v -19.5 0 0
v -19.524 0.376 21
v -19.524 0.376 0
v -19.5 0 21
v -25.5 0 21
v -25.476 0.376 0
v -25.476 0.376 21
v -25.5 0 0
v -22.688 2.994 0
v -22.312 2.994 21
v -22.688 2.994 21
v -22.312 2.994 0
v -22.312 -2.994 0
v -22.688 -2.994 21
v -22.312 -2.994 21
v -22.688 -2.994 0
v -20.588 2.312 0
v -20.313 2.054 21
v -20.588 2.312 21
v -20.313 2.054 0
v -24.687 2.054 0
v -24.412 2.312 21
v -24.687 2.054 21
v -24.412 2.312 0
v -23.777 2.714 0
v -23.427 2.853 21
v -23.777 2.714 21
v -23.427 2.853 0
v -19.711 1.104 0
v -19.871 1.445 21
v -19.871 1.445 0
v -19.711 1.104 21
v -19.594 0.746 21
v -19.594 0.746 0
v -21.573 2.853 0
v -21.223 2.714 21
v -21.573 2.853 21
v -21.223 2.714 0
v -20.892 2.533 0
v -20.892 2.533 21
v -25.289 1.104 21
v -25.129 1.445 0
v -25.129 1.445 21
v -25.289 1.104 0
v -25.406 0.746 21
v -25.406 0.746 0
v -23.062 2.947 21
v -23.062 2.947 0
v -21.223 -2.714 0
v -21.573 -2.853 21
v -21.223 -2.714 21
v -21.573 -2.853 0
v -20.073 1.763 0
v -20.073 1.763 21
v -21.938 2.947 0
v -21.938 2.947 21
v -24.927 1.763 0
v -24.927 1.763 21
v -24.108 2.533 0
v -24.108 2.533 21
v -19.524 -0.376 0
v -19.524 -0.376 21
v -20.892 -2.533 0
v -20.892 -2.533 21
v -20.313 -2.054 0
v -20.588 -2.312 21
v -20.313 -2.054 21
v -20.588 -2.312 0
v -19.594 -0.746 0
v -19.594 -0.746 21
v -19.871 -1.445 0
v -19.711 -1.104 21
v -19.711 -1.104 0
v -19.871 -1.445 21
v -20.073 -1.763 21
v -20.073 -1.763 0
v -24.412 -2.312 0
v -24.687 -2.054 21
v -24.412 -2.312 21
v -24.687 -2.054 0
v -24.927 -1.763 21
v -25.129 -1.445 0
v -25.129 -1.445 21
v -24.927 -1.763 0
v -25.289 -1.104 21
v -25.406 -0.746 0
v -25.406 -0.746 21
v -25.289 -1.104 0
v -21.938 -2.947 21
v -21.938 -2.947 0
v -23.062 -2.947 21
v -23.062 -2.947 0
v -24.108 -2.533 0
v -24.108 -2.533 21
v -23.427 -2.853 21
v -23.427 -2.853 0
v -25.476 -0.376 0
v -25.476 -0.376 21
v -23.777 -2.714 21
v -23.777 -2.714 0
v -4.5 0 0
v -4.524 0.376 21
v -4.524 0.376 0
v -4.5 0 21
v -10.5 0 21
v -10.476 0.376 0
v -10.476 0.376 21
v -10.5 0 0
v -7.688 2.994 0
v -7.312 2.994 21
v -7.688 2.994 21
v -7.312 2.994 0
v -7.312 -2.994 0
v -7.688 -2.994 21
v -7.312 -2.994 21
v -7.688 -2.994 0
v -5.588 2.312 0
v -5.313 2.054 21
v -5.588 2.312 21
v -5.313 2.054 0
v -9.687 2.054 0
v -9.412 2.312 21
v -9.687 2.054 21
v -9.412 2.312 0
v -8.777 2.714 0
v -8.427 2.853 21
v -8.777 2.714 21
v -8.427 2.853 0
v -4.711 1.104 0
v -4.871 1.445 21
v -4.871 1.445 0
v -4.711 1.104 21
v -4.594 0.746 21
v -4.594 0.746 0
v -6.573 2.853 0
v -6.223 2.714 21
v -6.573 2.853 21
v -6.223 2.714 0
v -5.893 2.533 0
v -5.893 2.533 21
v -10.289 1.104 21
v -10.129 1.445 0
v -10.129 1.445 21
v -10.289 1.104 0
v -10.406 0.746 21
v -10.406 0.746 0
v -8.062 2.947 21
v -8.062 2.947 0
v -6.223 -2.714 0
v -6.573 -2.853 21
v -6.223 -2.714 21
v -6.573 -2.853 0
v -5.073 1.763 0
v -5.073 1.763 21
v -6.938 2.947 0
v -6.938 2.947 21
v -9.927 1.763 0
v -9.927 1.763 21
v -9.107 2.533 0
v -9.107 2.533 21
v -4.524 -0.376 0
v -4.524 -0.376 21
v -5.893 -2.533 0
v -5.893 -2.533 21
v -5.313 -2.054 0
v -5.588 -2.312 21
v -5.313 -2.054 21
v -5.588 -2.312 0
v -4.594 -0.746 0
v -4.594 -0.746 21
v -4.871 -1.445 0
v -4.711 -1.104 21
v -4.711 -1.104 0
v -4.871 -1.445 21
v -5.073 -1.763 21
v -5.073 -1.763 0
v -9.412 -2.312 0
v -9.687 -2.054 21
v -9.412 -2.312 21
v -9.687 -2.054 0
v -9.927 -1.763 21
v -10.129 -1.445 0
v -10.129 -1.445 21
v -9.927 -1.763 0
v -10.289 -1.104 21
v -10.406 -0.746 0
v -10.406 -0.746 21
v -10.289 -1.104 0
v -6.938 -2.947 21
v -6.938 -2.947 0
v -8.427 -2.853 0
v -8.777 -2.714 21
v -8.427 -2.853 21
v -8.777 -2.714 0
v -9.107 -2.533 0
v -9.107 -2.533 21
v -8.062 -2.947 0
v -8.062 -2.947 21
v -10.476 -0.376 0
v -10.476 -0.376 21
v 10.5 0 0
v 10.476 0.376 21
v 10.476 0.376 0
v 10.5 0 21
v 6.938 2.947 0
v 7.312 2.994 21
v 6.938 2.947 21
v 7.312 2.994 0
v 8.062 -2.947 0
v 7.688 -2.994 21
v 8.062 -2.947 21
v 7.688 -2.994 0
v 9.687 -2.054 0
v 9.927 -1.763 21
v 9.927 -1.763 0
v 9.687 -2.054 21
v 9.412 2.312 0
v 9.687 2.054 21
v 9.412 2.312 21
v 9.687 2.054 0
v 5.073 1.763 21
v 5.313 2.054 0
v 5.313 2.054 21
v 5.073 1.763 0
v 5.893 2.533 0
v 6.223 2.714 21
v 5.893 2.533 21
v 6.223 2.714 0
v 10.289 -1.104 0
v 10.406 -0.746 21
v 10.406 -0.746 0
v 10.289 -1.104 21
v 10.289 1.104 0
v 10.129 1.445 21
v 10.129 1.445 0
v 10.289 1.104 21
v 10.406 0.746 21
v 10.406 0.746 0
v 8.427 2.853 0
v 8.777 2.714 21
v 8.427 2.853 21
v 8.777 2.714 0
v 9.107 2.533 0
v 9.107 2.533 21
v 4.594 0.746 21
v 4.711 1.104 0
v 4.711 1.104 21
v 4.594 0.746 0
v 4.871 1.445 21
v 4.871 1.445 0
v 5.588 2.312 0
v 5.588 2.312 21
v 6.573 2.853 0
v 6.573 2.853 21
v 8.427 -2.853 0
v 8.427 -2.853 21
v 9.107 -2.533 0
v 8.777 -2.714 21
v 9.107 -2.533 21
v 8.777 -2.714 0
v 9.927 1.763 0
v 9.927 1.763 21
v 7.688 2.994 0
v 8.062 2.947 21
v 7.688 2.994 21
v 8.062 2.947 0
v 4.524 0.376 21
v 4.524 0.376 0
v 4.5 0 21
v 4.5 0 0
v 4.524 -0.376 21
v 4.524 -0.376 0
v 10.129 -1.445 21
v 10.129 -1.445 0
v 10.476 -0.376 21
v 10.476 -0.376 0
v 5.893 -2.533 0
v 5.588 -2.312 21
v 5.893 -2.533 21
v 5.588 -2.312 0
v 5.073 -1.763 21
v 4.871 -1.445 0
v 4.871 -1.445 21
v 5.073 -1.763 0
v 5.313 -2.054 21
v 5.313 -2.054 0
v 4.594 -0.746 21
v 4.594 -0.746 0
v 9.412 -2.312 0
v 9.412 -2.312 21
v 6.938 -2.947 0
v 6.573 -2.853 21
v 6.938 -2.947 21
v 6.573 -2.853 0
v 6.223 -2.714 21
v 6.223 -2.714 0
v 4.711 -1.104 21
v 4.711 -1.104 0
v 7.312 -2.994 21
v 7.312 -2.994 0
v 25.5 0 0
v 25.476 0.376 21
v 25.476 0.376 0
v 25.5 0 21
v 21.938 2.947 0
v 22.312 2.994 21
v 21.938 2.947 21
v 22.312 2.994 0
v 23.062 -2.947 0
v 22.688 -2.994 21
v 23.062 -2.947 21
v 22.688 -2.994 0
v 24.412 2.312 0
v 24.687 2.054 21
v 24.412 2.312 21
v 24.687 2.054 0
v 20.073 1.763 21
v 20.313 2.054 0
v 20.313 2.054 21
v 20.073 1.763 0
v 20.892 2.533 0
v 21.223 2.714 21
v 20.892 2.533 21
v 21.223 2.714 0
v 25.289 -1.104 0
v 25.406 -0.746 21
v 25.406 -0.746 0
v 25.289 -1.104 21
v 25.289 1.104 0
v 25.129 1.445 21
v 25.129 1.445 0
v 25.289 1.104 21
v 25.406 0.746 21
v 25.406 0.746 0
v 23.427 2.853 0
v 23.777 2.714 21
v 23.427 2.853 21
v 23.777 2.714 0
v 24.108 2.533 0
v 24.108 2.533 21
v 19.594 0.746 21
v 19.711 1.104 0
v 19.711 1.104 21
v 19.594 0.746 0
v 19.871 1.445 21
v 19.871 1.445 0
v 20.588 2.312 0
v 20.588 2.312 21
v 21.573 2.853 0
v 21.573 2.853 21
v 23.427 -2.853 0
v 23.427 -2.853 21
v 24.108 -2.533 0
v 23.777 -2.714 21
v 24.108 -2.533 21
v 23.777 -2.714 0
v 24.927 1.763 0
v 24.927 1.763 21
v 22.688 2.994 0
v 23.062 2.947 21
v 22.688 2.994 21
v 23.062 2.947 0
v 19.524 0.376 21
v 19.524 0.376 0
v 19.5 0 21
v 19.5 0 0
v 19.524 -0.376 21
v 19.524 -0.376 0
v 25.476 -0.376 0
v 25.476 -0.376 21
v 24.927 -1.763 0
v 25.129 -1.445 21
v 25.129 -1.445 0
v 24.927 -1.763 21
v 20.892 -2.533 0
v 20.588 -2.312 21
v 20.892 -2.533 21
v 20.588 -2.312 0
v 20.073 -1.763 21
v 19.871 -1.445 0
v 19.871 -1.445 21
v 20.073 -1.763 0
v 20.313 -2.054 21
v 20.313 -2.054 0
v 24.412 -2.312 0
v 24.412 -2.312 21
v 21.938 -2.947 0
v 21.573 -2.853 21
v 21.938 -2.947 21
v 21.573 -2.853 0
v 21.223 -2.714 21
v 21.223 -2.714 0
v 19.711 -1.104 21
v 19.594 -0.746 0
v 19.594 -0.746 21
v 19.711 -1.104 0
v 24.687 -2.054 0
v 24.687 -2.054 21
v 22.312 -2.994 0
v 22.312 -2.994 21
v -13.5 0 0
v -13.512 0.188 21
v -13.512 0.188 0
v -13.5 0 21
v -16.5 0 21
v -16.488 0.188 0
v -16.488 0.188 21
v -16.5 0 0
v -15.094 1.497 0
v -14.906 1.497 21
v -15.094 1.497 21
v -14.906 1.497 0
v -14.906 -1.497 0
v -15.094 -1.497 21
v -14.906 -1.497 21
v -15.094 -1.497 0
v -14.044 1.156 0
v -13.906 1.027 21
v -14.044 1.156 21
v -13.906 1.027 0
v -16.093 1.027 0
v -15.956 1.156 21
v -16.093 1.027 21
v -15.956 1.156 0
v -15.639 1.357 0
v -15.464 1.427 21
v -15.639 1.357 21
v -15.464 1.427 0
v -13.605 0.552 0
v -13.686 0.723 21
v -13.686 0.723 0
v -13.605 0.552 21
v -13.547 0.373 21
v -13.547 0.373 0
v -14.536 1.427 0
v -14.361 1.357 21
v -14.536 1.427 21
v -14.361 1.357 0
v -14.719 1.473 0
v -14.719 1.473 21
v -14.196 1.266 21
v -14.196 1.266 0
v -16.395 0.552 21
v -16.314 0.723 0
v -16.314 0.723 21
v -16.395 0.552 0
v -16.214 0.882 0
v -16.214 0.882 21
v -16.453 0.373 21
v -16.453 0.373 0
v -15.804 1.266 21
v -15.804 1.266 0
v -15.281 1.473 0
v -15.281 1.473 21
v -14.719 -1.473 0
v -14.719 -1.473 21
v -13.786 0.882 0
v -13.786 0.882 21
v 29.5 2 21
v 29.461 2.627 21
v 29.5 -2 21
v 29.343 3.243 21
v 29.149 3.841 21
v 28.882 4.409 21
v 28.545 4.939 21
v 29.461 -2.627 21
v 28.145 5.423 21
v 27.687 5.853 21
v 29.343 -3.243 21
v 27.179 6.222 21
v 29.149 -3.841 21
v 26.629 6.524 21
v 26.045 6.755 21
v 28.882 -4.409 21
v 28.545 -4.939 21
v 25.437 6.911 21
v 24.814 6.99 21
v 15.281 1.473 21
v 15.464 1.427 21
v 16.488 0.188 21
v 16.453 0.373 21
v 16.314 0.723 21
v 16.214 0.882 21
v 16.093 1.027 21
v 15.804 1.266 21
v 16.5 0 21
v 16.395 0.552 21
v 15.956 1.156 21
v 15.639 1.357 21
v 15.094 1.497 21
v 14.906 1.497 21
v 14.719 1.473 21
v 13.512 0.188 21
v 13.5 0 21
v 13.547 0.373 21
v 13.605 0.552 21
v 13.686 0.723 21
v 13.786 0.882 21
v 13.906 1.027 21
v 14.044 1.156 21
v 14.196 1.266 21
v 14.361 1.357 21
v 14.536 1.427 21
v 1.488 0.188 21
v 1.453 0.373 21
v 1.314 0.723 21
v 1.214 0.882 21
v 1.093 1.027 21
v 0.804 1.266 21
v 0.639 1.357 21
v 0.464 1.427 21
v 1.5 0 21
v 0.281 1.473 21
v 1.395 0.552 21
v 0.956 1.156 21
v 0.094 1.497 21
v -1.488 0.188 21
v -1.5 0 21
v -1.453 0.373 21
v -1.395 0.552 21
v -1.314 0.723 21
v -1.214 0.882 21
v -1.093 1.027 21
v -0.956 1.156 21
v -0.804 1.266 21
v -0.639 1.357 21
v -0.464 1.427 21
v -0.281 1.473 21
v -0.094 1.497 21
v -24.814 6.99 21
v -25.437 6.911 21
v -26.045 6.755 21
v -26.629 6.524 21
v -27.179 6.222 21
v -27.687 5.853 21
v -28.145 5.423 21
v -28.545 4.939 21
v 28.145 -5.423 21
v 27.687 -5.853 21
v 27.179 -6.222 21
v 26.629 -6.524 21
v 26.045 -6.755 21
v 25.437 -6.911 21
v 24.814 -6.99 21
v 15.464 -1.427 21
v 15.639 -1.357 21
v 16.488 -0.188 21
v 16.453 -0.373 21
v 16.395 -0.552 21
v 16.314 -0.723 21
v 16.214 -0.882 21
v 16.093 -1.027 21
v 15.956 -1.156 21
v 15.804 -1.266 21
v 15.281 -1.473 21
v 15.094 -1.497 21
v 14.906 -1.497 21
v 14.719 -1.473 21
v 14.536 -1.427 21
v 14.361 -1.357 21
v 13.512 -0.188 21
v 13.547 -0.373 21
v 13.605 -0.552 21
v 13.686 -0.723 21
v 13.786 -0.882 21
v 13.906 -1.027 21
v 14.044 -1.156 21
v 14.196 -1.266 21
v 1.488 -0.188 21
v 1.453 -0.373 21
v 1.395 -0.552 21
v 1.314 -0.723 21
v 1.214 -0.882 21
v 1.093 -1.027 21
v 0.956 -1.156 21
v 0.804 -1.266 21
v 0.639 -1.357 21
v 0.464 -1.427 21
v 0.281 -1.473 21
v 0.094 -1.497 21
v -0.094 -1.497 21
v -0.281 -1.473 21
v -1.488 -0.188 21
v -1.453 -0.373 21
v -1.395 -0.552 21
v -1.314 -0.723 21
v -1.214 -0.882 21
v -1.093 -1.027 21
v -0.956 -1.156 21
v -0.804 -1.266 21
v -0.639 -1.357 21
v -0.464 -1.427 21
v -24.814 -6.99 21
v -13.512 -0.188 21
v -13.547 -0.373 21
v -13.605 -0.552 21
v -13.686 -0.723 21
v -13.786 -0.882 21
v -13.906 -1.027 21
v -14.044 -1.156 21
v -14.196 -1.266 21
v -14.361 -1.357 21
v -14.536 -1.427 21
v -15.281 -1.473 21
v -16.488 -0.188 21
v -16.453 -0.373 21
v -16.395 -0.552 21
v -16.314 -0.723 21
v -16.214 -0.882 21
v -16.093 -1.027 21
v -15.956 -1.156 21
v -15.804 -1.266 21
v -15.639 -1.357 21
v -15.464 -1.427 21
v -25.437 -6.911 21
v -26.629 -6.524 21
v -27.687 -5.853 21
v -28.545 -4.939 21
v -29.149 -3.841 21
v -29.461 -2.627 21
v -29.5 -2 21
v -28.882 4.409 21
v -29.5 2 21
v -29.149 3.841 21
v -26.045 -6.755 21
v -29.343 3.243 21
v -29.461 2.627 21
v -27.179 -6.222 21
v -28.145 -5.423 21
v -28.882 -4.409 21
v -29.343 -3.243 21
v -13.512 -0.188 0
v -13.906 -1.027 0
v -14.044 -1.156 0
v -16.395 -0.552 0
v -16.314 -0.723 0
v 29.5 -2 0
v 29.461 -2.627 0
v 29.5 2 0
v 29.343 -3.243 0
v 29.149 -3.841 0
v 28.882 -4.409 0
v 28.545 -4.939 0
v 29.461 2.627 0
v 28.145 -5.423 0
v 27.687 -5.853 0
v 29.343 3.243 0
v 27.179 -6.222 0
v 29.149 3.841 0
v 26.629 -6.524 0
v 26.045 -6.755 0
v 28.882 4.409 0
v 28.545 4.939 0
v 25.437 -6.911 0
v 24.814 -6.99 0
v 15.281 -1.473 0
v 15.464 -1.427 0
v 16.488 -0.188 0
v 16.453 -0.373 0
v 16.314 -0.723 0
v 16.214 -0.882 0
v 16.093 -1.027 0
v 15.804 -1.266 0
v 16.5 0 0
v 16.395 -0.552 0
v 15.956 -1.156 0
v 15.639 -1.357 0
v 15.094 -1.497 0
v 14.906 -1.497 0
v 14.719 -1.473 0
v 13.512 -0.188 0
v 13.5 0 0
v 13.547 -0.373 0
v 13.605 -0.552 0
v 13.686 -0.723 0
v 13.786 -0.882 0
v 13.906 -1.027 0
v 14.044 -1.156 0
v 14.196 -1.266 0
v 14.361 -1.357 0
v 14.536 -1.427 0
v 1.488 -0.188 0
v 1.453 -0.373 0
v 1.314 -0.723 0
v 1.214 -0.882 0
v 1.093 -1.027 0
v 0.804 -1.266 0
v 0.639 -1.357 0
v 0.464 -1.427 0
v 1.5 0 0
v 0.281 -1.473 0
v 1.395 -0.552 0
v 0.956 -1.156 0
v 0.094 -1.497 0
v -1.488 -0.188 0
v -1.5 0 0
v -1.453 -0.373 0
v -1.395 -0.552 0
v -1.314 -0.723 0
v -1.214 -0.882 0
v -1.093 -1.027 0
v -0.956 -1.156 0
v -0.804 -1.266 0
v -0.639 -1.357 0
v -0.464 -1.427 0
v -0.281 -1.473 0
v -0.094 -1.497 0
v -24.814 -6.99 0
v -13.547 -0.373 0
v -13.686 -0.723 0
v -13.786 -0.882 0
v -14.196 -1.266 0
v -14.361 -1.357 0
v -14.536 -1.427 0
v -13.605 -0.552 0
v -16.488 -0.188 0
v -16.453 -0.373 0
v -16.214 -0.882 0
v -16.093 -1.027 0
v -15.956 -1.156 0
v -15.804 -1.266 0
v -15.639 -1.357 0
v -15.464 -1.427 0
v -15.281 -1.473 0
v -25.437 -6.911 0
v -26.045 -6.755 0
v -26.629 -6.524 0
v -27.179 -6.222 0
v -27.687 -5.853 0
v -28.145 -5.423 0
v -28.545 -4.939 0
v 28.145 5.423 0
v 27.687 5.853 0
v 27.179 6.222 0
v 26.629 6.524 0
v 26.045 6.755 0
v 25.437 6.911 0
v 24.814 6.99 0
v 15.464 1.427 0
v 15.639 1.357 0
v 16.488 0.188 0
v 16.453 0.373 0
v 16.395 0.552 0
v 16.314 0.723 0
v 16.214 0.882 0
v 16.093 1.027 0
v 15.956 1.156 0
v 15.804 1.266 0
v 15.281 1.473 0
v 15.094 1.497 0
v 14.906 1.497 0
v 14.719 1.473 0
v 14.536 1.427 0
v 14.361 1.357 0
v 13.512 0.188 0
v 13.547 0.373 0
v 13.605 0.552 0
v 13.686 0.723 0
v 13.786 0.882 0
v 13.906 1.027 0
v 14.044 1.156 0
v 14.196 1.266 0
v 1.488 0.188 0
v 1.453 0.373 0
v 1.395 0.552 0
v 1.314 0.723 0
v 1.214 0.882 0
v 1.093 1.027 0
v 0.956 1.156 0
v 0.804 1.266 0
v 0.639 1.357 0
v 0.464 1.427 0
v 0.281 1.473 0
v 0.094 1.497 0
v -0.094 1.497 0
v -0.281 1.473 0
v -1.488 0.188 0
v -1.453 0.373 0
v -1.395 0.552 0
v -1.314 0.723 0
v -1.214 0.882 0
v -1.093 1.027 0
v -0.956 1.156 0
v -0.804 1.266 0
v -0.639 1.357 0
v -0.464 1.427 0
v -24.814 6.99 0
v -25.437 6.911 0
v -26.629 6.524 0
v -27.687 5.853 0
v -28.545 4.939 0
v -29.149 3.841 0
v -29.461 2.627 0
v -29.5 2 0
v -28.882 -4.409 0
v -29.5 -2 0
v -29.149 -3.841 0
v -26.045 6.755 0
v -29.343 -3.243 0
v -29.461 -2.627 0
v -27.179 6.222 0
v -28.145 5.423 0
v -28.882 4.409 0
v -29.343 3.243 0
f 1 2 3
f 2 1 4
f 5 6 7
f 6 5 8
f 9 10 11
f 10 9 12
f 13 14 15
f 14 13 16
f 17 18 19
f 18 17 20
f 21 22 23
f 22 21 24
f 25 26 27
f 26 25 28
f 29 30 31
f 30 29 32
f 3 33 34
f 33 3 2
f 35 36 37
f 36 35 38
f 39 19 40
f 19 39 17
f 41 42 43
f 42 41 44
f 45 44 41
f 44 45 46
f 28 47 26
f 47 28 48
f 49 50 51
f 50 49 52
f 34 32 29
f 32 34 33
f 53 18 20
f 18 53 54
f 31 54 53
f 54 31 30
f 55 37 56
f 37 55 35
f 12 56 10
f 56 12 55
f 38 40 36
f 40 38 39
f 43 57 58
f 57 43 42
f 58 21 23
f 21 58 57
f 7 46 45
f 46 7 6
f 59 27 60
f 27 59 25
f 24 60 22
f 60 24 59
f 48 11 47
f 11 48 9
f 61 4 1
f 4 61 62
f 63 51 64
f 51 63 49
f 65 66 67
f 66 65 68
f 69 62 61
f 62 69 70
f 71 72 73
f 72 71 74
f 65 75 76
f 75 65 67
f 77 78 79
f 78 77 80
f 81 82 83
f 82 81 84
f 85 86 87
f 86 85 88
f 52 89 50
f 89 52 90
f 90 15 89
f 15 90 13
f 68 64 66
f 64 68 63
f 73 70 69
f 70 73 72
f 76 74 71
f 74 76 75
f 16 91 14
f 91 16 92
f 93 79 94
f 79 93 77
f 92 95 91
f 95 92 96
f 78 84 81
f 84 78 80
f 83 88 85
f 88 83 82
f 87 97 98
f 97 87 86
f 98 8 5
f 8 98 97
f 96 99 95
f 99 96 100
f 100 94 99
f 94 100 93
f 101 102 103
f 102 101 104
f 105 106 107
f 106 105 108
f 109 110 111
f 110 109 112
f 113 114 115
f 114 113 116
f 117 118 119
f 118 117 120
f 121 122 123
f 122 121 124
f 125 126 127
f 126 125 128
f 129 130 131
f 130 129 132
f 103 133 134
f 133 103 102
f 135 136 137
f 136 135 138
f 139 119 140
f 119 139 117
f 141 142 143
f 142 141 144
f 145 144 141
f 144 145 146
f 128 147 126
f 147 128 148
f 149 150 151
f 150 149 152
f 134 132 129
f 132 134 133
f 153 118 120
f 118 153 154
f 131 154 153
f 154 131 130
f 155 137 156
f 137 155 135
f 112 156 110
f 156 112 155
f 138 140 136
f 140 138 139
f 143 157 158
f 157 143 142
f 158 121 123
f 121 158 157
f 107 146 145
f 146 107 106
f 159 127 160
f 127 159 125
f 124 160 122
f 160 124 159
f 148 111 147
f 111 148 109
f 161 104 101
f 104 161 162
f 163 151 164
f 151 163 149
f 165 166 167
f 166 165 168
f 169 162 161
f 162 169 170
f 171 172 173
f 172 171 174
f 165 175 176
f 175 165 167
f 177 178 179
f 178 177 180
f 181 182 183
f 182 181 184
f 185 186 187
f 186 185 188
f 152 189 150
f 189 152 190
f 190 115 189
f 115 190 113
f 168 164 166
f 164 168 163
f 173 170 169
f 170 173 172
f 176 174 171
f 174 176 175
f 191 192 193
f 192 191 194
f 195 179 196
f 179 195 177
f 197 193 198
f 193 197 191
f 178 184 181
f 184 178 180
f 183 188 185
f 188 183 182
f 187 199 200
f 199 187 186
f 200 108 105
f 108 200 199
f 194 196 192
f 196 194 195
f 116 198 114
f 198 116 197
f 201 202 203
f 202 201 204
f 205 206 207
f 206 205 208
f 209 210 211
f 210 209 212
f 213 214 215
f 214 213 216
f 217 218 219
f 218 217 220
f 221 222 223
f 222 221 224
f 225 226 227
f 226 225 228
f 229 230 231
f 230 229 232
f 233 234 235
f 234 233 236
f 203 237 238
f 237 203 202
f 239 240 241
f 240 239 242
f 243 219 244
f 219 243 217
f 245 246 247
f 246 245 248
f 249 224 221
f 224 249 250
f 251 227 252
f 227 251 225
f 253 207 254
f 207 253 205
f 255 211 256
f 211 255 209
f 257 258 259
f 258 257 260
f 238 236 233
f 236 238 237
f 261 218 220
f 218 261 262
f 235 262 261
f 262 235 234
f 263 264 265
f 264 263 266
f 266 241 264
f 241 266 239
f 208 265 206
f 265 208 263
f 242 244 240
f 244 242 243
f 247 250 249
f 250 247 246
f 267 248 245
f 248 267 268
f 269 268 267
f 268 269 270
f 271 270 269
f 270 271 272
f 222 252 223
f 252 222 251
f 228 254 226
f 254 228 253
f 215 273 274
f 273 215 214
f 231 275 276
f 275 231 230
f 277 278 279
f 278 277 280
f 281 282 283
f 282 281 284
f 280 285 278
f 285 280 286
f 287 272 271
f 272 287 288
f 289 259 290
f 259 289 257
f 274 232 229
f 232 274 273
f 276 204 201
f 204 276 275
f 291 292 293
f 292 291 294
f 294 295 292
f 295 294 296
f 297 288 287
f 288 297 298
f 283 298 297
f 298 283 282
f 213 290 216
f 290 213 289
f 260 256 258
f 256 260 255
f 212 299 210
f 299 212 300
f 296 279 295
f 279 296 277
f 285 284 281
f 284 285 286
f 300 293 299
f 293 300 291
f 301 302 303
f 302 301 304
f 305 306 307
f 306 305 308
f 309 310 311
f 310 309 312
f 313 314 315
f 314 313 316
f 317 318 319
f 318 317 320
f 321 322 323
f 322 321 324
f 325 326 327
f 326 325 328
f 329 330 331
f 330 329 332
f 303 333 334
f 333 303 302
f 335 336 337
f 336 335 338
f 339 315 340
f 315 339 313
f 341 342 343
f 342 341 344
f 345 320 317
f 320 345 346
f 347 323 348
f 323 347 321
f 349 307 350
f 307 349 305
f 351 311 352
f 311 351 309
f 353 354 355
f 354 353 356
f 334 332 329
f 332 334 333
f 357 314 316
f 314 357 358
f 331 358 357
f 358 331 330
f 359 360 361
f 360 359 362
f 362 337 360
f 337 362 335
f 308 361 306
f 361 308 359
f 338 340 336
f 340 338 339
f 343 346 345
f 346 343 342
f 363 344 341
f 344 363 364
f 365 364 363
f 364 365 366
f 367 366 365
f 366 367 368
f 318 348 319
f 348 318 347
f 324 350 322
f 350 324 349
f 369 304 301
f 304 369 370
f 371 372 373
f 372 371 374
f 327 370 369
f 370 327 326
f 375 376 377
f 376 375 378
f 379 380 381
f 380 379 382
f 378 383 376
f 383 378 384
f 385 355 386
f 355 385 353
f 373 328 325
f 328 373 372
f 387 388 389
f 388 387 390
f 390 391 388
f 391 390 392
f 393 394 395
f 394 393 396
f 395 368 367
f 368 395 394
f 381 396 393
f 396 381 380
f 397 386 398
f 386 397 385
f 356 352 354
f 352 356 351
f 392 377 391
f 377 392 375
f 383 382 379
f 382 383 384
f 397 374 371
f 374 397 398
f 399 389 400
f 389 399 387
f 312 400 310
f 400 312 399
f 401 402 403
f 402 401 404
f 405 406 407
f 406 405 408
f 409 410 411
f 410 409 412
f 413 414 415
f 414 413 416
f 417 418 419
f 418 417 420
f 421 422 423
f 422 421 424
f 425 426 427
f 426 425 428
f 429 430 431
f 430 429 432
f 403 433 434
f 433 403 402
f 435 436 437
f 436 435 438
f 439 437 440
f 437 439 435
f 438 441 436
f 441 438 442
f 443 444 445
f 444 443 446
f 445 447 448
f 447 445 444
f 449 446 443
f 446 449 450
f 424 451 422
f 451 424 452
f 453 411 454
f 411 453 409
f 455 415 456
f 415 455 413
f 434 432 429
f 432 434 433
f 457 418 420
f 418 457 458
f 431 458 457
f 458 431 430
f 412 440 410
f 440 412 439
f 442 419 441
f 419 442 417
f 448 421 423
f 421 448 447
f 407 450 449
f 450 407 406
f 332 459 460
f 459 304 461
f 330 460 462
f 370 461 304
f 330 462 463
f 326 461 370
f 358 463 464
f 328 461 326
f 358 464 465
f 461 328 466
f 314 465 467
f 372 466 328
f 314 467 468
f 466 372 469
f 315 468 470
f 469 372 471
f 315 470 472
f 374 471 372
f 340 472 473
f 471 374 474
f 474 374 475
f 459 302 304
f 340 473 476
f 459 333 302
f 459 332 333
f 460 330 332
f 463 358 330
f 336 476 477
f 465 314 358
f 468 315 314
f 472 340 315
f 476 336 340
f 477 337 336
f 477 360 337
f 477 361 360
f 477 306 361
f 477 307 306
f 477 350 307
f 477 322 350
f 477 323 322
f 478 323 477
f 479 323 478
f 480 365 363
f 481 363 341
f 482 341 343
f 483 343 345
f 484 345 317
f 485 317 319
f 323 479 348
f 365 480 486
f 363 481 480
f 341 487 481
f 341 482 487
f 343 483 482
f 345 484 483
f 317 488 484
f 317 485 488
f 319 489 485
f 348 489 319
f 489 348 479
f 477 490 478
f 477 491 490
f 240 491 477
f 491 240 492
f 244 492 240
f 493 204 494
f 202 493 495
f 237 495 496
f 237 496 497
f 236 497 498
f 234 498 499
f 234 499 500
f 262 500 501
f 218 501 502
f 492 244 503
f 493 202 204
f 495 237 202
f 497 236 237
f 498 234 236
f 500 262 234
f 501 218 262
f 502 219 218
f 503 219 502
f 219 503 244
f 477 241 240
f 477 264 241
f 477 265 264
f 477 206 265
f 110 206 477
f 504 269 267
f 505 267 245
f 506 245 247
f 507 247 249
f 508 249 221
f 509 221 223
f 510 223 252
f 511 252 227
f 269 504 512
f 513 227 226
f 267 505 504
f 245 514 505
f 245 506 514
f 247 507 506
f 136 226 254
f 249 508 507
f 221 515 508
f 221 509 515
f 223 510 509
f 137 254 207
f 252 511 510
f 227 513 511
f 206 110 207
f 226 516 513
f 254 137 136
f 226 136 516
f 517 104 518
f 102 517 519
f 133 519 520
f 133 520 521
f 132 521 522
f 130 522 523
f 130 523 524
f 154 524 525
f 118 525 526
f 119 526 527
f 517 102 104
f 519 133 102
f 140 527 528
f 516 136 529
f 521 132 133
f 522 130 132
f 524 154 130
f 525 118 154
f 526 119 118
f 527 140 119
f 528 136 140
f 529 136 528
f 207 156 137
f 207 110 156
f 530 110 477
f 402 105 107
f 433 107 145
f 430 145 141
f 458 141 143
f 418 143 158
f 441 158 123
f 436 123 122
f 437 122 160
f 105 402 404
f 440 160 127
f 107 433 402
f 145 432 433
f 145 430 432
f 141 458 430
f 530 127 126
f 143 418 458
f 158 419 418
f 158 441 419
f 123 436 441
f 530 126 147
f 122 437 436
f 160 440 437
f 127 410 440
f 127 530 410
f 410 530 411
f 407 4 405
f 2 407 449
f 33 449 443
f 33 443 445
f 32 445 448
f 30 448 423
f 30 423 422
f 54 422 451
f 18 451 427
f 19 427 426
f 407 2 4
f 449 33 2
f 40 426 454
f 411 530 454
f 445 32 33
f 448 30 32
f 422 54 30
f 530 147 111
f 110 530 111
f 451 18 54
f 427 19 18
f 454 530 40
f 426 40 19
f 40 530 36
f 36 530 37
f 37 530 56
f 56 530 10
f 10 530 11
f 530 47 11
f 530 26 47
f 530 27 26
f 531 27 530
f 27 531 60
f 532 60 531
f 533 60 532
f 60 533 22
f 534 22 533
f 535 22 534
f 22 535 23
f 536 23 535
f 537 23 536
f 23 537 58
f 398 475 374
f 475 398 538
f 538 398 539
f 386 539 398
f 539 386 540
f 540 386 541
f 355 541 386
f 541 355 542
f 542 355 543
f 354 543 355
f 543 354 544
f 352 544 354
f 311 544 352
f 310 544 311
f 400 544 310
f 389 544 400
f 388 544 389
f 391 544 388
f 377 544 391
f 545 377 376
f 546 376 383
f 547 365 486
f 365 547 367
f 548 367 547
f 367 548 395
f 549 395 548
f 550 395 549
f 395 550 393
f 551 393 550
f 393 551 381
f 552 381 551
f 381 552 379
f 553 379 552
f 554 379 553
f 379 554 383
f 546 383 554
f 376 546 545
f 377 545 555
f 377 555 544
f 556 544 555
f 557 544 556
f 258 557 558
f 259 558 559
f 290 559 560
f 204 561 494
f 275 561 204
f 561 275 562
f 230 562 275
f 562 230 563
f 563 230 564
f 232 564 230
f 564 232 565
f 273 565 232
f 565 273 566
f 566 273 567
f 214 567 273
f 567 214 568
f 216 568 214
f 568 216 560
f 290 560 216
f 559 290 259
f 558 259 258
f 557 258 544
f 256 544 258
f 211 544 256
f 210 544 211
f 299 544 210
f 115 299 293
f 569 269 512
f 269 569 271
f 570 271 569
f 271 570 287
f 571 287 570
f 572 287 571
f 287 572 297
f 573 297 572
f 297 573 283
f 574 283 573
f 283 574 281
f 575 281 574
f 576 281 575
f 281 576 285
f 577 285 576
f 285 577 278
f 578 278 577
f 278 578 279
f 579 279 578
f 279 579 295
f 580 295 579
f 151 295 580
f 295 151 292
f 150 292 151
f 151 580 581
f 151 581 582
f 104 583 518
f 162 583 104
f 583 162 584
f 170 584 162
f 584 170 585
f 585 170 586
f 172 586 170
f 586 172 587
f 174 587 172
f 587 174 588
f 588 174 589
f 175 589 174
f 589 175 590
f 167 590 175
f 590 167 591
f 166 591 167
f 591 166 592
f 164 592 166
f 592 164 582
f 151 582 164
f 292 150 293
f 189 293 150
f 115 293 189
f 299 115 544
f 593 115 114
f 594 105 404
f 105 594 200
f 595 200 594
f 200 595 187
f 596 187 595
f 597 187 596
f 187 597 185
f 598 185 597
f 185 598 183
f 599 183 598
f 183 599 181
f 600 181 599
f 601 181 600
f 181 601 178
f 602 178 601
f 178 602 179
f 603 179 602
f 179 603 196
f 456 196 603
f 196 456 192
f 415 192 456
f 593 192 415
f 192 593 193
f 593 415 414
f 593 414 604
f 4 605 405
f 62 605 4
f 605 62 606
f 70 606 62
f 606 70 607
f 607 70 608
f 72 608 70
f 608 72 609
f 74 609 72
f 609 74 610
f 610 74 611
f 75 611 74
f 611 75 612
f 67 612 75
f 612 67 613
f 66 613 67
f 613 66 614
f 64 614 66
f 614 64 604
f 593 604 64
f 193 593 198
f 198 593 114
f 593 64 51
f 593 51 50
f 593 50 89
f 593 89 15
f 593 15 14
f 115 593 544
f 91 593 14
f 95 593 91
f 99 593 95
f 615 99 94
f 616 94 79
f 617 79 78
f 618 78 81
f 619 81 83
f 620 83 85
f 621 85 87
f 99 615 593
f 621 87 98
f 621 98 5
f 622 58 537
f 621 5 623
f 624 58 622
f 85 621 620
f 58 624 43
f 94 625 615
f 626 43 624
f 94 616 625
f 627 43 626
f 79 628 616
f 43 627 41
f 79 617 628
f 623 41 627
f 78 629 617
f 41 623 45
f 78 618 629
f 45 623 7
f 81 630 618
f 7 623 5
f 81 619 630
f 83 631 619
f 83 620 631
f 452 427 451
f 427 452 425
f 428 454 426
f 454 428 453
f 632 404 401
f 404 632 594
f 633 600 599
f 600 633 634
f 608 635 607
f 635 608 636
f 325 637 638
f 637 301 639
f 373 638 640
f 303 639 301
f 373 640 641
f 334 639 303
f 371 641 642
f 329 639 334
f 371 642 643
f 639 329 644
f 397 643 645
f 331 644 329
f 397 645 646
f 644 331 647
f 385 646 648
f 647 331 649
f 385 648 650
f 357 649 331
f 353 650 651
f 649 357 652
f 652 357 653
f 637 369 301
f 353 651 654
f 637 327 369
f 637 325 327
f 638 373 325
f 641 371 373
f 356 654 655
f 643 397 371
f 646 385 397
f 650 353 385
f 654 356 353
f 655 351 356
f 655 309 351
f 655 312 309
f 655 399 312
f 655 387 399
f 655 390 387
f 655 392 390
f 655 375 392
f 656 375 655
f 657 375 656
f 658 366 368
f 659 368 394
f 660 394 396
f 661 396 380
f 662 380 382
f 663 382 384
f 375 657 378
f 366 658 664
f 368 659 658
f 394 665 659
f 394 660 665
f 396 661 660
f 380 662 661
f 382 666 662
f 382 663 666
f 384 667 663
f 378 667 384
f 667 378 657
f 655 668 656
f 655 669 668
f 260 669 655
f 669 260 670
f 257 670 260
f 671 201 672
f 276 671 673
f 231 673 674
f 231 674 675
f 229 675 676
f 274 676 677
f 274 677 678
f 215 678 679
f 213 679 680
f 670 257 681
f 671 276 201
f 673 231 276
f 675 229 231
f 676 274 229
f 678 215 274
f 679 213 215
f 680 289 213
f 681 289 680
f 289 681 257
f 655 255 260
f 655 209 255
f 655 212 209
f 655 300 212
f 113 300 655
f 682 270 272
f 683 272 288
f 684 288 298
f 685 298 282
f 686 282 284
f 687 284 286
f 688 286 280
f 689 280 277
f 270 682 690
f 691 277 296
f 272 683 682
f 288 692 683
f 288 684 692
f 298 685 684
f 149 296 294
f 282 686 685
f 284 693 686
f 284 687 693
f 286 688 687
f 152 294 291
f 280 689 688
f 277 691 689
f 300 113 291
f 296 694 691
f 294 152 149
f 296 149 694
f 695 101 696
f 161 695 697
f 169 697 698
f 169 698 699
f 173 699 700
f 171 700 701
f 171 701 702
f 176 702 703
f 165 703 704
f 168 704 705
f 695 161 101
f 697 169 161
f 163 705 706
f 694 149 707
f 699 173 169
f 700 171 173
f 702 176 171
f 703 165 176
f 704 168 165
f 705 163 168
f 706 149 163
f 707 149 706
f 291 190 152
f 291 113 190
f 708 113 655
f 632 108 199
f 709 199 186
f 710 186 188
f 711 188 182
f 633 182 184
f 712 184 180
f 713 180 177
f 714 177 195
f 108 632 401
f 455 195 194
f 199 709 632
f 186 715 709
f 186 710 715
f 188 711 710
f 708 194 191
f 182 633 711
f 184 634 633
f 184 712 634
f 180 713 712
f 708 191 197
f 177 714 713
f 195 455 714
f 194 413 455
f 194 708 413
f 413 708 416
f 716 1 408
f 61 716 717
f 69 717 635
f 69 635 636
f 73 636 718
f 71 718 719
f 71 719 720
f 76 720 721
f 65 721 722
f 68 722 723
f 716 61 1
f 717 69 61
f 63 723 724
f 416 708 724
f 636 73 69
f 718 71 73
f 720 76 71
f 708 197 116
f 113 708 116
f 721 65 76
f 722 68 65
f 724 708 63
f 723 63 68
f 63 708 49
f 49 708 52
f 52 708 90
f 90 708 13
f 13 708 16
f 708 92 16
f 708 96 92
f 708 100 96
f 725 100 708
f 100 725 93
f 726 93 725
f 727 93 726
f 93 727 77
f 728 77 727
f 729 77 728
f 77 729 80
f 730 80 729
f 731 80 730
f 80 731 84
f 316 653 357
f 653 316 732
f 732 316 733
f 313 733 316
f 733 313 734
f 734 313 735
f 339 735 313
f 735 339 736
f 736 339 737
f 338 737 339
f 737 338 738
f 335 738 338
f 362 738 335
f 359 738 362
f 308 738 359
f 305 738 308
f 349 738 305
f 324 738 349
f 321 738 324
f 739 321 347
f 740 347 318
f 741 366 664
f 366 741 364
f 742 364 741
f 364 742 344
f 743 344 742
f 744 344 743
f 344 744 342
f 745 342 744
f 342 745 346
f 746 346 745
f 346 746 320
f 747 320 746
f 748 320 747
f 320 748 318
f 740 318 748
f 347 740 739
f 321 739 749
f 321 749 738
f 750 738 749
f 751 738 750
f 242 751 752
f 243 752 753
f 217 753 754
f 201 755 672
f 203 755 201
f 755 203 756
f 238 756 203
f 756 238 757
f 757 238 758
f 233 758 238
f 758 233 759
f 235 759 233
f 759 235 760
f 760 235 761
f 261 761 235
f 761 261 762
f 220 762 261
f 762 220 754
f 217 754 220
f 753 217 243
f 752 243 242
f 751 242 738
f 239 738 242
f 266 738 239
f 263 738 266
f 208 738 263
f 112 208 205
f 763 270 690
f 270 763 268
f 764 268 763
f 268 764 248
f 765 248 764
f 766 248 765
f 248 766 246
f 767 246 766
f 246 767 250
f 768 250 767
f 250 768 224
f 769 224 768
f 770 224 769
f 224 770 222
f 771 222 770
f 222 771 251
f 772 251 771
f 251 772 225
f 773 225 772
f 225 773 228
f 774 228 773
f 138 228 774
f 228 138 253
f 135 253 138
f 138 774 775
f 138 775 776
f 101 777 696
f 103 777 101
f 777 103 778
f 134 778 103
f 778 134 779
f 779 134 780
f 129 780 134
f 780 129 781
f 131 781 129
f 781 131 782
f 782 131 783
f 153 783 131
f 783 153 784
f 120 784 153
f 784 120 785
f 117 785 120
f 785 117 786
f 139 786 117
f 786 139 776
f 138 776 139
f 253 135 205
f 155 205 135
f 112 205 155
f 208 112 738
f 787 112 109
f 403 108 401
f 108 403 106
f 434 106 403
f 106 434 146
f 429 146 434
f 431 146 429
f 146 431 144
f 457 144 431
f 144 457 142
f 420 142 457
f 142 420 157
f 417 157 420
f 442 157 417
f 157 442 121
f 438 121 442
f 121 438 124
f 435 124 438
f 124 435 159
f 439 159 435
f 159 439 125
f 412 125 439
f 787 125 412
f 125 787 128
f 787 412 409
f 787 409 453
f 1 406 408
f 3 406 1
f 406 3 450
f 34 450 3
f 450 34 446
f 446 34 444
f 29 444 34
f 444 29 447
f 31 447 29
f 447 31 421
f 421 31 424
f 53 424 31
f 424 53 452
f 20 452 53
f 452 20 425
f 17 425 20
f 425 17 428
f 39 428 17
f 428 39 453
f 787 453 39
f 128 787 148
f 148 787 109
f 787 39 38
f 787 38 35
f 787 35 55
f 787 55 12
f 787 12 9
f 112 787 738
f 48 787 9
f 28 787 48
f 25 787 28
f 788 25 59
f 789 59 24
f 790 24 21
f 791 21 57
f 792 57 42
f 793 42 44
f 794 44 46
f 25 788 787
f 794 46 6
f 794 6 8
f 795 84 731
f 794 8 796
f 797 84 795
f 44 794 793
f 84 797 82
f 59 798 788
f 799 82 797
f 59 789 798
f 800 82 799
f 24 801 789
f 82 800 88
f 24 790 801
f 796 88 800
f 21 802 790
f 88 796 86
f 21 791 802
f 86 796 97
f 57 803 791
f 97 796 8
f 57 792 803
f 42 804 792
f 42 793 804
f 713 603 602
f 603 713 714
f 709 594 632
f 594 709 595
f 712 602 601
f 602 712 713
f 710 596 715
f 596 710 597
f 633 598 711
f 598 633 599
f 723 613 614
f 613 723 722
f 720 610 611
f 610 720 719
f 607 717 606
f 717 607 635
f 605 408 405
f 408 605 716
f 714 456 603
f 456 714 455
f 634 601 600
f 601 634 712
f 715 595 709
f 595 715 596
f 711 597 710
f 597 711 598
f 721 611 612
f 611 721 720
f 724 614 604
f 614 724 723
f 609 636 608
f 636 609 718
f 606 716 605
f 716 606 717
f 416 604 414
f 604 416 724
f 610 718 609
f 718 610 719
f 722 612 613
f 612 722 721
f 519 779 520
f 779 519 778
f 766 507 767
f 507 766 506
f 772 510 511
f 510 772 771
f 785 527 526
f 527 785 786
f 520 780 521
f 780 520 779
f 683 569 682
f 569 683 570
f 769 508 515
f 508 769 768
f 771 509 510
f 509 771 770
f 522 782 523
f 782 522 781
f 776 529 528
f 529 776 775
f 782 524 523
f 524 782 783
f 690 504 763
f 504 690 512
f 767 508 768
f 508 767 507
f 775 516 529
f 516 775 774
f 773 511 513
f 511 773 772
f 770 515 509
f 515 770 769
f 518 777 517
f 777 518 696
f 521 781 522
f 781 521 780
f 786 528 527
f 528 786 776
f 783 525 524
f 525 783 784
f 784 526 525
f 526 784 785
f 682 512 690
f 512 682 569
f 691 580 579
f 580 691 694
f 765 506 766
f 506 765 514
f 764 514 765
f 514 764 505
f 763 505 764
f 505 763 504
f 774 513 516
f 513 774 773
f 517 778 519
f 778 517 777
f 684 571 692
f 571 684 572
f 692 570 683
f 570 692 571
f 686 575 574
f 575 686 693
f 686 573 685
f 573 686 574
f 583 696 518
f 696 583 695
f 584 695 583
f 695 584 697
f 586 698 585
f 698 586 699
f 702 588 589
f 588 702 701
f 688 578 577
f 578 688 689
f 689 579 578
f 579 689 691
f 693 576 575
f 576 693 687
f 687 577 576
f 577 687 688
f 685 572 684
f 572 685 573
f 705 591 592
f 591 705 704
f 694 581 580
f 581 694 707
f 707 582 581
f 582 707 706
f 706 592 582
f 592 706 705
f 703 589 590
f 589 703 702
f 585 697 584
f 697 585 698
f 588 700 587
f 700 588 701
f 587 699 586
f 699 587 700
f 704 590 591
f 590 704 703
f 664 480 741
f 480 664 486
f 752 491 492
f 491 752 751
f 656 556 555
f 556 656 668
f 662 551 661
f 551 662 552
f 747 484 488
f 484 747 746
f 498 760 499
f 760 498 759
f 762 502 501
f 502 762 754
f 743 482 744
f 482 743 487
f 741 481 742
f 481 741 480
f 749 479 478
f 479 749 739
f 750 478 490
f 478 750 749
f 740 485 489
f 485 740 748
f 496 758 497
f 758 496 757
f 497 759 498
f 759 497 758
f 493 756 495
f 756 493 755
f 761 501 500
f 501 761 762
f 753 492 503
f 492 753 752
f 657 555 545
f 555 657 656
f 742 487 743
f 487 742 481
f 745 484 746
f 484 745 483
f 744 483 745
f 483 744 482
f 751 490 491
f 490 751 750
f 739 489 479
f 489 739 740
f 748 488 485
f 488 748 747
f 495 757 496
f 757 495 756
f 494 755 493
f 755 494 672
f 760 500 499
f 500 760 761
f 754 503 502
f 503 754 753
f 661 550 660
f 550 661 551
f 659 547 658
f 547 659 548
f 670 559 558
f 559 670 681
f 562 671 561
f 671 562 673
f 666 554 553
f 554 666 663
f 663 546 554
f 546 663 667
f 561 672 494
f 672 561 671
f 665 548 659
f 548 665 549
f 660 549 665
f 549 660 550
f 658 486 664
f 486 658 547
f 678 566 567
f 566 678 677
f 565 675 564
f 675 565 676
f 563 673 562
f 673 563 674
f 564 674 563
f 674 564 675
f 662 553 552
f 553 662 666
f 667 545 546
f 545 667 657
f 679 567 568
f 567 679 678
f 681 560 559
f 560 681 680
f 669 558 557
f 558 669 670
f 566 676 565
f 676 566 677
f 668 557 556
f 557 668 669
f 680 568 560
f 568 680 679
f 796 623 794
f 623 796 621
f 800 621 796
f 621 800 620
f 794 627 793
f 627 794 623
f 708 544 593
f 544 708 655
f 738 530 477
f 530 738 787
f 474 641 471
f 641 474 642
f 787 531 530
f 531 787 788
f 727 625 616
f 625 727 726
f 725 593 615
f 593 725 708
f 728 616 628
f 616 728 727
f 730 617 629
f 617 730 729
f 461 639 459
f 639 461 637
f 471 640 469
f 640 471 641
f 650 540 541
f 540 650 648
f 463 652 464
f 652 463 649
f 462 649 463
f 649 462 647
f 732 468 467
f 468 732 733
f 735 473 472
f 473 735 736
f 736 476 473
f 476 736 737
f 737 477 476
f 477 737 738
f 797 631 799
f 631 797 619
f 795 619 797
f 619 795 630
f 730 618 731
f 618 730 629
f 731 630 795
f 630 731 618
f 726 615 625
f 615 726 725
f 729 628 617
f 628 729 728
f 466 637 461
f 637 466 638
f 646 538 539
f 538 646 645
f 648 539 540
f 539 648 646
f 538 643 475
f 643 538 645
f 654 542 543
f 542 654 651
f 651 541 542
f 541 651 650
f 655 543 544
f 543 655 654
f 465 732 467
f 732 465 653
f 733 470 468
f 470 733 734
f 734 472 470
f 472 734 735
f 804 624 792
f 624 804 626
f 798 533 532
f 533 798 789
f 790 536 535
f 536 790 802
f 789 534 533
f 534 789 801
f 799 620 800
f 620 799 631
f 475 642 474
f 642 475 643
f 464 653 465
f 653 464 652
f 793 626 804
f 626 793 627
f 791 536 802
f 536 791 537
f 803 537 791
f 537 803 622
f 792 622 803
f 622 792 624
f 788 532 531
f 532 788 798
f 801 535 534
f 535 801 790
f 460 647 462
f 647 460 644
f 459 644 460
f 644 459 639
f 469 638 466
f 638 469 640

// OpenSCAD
$fn = 50;


difference() {
	union() {
		hull() {
			translate(v = [-24.5000000000, 2.0000000000, 0]) {
				cylinder(h = 21, r = 5);
			}
			translate(v = [24.5000000000, 2.0000000000, 0]) {
				cylinder(h = 21, r = 5);
			}
			translate(v = [-24.5000000000, -2.0000000000, 0]) {
				cylinder(h = 21, r = 5);
			}
			translate(v = [24.5000000000, -2.0000000000, 0]) {
				cylinder(h = 21, r = 5);
			}
		}
	}
	union() {
		translate(v = [-22.5000000000, 0.0000000000, -100.0000000000]) {
			cylinder(h = 200, r = 3.0000000000);
		}
		translate(v = [-7.5000000000, 0.0000000000, -100.0000000000]) {
			cylinder(h = 200, r = 3.0000000000);
		}
		translate(v = [7.5000000000, 0.0000000000, -100.0000000000]) {
			cylinder(h = 200, r = 3.0000000000);
		}
		translate(v = [22.5000000000, 0.0000000000, -100.0000000000]) {
			cylinder(h = 200, r = 3.0000000000);
		}
		translate(v = [-22.5000000000, 0.0000000000, 0]) {
			cylinder(h = 21, r = 1.5000000000);
		}
		translate(v = [-15.0000000000, 0.0000000000, 0]) {
			cylinder(h = 21, r = 1.5000000000);
		}
		translate(v = [-7.5000000000, 0.0000000000, 0]) {
			cylinder(h = 21, r = 1.5000000000);
		}
		cylinder(h = 21, r = 1.5000000000);
		translate(v = [7.5000000000, 0.0000000000, 0]) {
			cylinder(h = 21, r = 1.5000000000);
		}
		translate(v = [15.0000000000, 0.0000000000, 0]) {
			cylinder(h = 21, r = 1.5000000000);
		}
		translate(v = [22.5000000000, 0.0000000000, 0]) {
			cylinder(h = 21, r = 1.5000000000);
		}
		translate(v = [-22.5000000000, 0.0000000000, 0]) {
			cylinder(h = 21, r = 1.5000000000);
		}
		translate(v = [-15.0000000000, 0.0000000000, 0]) {
			cylinder(h = 21, r = 1.5000000000);
		}
		translate(v = [-7.5000000000, 0.0000000000, 0]) {
			cylinder(h = 21, r = 1.5000000000);
		}
		cylinder(h = 21, r = 1.5000000000);
		translate(v = [7.5000000000, 0.0000000000, 0]) {
			cylinder(h = 21, r = 1.5000000000);
		}
		translate(v = [15.0000000000, 0.0000000000, 0]) {
			cylinder(h = 21, r = 1.5000000000);
		}
		translate(v = [22.5000000000, 0.0000000000, 0]) {
			cylinder(h = 21, r = 1.5000000000);
		}
		translate(v = [-22.5000000000, 0.0000000000, 0]) {
			cylinder(h = 21, r = 1.5000000000);
		}
		translate(v = [-15.0000000000, 0.0000000000, 0]) {
			cylinder(h = 21, r = 1.5000000000);
		}
		translate(v = [-7.5000000000, 0.0000000000, 0]) {
			cylinder(h = 21, r = 1.5000000000);
		}
		cylinder(h = 21, r = 1.5000000000);
		translate(v = [7.5000000000, 0.0000000000, 0]) {
			cylinder(h = 21, r = 1.5000000000);
		}
		translate(v = [15.0000000000, 0.0000000000, 0]) {
			cylinder(h = 21, r = 1.5000000000);
		}
		translate(v = [22.5000000000, 0.0000000000, 0]) {
			cylinder(h = 21, r = 1.5000000000);
		}
	}
}
